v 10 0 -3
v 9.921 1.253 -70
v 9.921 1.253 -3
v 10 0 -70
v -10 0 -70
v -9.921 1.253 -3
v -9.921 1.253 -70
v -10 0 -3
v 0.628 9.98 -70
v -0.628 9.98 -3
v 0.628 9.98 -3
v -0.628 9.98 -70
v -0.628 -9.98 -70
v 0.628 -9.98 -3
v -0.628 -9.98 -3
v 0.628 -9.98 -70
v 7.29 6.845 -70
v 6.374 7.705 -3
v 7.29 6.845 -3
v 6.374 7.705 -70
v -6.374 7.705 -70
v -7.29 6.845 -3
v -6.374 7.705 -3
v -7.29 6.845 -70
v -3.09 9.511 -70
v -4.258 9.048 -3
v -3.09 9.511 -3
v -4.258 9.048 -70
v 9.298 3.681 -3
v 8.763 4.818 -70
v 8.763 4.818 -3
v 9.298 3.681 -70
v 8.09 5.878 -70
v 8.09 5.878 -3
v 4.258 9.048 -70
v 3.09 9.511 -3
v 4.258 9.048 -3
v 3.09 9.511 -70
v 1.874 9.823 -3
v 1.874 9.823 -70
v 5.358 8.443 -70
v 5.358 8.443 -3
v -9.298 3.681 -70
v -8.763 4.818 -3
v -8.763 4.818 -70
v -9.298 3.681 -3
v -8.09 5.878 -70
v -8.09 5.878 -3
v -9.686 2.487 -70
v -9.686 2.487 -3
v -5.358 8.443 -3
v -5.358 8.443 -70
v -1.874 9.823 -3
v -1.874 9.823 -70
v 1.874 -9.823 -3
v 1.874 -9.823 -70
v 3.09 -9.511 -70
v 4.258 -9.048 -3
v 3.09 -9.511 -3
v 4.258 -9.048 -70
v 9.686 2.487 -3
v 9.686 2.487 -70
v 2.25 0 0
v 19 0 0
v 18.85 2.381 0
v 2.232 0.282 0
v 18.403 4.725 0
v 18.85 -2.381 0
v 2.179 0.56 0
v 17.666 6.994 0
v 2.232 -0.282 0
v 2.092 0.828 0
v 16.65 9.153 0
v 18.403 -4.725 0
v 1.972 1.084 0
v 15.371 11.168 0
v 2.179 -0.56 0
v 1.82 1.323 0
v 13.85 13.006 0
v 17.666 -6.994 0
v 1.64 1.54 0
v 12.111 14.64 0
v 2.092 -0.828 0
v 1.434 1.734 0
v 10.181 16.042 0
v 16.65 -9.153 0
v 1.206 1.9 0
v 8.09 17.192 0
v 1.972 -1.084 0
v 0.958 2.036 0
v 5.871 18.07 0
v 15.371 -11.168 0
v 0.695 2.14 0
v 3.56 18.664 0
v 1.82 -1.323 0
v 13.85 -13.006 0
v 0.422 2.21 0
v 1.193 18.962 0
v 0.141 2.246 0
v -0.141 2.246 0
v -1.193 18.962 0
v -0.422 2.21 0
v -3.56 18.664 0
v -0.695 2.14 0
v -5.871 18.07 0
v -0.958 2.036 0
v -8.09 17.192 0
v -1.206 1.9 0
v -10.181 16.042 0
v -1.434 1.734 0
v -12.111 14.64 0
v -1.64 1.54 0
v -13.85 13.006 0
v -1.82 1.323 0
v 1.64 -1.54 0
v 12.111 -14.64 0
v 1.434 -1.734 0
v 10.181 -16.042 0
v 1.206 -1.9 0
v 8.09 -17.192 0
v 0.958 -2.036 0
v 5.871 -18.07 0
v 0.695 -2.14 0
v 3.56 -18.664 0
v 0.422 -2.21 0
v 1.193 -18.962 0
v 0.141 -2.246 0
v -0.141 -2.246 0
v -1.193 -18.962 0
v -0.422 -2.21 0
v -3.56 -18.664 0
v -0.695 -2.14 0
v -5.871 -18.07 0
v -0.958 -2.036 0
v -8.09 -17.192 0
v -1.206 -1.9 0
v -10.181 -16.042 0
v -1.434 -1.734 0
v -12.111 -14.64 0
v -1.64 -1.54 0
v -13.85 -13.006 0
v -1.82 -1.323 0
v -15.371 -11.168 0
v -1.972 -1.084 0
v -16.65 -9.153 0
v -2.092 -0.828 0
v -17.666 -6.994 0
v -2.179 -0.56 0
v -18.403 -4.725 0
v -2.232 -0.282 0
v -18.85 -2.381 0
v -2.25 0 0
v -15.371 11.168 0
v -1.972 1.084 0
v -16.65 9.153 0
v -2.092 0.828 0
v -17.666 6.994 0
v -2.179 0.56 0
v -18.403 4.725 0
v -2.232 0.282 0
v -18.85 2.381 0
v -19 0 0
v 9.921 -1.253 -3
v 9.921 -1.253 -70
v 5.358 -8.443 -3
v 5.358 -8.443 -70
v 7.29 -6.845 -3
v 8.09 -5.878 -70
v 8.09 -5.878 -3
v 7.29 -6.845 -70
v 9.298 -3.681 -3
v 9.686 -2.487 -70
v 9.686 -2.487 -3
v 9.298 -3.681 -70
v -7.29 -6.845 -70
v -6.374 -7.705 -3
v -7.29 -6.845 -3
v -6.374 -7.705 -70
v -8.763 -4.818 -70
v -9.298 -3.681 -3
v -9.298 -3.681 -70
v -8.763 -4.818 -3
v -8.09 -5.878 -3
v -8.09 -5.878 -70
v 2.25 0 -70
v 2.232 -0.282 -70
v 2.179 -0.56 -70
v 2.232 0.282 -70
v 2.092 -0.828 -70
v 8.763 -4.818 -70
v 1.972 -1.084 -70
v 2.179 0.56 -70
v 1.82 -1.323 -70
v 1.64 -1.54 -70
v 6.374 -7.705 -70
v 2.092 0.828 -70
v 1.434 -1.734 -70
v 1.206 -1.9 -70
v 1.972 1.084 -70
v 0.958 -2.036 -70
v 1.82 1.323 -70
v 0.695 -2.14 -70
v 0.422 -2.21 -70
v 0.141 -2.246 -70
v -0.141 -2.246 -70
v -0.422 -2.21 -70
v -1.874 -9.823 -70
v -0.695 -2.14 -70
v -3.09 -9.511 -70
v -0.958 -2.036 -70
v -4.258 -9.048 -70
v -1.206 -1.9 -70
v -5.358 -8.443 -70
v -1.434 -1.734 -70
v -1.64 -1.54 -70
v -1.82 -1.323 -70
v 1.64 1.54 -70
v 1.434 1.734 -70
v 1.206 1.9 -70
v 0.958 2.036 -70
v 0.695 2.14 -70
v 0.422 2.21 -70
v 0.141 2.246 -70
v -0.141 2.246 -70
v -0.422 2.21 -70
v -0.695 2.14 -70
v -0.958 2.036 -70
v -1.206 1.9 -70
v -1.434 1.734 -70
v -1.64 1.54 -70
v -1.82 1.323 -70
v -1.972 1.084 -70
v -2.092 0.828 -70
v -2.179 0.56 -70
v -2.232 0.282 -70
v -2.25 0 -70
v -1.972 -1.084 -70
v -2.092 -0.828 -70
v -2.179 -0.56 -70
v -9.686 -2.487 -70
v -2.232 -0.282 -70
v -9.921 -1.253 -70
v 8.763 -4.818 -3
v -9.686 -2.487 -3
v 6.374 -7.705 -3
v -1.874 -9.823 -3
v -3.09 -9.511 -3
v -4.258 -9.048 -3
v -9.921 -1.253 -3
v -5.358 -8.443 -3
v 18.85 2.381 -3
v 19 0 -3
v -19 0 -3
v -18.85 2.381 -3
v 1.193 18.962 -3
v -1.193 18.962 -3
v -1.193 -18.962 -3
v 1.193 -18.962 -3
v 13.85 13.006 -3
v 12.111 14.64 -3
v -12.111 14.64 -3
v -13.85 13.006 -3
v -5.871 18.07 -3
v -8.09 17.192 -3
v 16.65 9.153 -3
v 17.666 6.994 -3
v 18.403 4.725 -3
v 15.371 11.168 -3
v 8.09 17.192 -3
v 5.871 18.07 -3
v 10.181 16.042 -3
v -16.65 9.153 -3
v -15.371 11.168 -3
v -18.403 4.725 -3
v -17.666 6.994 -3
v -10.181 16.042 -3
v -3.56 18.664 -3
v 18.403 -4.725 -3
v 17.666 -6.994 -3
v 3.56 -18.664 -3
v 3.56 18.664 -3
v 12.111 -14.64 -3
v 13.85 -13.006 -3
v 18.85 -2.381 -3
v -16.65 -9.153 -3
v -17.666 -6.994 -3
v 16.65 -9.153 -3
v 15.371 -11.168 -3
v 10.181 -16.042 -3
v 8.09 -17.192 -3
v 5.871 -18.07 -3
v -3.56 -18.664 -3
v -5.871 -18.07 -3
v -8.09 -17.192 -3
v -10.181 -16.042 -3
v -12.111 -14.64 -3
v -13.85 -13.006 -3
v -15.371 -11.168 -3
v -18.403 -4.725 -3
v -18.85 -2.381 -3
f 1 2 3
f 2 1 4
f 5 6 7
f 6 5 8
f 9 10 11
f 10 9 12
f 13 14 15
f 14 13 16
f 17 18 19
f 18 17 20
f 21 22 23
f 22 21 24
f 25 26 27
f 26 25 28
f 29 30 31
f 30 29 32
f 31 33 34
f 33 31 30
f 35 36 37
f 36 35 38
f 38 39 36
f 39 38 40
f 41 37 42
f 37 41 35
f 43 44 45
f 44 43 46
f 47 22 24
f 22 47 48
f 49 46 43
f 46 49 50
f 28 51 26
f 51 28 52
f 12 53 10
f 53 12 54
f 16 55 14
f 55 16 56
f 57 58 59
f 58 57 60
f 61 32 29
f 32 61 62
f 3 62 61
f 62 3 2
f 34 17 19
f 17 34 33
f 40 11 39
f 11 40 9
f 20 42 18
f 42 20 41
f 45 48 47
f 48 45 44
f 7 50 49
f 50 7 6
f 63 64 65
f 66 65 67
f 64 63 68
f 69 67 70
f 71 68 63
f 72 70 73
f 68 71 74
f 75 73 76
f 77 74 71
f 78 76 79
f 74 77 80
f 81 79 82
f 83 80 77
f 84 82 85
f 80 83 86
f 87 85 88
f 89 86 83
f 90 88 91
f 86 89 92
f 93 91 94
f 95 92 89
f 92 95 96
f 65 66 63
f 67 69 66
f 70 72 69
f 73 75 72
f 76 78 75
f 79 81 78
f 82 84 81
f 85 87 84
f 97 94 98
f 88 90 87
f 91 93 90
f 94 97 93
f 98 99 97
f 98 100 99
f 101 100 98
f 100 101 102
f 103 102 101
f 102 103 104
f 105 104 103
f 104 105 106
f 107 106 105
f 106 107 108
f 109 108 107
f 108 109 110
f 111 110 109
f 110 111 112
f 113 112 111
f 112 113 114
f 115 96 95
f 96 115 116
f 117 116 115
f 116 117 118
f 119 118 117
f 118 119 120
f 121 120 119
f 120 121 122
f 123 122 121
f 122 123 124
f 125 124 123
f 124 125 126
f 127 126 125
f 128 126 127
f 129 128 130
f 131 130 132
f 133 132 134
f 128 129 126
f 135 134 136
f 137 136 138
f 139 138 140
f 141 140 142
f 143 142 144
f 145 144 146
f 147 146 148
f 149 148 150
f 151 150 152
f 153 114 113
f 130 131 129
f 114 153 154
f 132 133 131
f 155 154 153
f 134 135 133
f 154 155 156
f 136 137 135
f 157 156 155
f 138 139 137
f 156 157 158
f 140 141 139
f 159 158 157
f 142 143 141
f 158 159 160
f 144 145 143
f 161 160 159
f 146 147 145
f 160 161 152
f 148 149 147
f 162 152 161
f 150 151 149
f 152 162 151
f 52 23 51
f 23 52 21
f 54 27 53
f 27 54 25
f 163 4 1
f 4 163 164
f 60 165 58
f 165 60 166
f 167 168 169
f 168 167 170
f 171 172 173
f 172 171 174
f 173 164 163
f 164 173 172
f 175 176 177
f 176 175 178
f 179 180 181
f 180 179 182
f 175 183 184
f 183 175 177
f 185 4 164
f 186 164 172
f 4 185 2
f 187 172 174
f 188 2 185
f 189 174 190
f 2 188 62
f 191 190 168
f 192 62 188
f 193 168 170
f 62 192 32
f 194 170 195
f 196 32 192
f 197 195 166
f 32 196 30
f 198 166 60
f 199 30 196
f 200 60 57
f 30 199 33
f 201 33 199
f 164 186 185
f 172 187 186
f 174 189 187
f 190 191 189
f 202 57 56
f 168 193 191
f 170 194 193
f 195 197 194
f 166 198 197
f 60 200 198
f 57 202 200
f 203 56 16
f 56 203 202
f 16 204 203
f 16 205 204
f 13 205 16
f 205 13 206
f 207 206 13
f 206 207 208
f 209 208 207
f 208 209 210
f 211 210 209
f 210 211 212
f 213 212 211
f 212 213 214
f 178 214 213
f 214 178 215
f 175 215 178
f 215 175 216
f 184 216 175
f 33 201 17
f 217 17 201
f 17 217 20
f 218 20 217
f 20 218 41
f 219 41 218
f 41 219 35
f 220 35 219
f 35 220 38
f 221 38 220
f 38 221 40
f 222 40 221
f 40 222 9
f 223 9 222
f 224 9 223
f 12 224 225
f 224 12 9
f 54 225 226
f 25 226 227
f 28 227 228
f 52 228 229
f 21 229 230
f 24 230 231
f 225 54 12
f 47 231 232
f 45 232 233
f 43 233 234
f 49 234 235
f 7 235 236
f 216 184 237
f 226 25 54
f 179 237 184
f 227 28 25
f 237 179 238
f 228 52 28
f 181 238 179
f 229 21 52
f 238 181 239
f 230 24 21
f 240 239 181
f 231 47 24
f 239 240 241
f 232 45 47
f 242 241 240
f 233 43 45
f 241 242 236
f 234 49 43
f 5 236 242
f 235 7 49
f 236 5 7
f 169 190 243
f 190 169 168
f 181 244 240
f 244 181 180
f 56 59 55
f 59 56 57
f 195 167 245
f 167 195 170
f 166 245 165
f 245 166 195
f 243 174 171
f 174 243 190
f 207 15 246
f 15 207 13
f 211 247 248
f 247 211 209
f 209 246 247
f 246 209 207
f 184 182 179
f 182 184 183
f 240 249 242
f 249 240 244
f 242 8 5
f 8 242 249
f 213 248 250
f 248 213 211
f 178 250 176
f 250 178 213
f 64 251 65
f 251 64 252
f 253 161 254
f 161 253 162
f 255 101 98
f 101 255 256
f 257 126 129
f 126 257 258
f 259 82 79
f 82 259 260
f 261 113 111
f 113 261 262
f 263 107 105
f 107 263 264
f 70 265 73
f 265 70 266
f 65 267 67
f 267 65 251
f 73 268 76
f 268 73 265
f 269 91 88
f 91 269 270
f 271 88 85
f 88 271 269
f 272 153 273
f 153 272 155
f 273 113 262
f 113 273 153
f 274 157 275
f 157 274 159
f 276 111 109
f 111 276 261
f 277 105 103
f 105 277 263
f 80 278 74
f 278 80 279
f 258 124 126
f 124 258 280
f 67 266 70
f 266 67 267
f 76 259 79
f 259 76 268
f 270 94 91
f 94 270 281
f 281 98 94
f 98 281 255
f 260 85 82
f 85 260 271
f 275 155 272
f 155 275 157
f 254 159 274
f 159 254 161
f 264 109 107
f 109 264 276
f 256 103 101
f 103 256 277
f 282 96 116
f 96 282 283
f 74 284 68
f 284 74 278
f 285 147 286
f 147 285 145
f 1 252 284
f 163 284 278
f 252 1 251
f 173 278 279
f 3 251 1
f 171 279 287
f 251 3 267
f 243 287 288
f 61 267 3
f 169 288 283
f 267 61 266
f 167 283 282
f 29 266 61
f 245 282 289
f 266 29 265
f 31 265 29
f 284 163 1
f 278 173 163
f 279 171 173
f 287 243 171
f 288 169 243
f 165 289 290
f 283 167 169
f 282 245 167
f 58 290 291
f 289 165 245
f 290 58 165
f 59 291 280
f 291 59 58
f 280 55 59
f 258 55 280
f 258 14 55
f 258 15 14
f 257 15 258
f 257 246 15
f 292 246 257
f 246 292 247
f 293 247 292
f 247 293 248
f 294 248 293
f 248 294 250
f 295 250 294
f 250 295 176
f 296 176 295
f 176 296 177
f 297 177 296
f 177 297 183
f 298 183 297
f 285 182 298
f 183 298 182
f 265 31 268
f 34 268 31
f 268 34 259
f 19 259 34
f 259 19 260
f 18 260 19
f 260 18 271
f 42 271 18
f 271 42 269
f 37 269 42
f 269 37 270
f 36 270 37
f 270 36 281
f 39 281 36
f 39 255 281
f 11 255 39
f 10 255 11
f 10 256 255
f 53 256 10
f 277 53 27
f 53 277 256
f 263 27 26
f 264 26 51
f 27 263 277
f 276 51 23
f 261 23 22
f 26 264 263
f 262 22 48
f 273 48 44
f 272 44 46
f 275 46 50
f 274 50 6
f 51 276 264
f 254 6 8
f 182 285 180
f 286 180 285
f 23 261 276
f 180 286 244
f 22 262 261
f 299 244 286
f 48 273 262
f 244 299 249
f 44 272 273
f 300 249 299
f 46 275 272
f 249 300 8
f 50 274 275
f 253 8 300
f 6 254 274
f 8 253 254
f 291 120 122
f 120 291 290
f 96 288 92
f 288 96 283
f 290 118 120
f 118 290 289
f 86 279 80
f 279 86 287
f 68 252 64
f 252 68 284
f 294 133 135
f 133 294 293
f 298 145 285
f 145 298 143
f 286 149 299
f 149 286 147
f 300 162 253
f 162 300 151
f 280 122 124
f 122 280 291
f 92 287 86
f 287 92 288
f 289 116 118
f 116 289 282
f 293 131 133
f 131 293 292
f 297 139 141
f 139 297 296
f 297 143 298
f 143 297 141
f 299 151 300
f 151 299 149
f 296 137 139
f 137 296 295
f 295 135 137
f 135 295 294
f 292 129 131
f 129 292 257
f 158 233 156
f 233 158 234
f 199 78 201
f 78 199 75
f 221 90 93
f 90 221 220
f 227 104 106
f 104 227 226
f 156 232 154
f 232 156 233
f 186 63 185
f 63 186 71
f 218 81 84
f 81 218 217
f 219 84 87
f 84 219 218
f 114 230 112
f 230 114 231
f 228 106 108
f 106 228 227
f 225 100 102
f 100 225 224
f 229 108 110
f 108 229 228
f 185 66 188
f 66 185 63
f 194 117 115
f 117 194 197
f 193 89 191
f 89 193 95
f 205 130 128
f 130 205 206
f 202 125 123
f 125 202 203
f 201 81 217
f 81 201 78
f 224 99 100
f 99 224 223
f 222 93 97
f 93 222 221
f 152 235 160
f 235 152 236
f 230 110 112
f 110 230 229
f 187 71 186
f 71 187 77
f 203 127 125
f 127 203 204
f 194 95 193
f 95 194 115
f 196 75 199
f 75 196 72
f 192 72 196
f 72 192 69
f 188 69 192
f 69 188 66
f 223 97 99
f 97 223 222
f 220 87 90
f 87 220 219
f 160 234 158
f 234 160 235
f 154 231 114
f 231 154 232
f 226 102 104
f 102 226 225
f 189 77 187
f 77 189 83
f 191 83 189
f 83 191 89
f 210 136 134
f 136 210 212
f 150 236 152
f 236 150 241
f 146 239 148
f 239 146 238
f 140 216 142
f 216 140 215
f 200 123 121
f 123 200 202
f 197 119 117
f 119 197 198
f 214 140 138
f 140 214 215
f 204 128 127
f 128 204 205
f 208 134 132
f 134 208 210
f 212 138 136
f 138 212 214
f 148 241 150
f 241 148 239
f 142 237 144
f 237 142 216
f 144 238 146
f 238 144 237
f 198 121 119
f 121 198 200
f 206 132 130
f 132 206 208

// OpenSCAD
$fn = 50;


difference() {
	union() {
		translate(v = [0, 0, -70.0000000000]) {
			cylinder(h = 70, r = 10.0000000000);
		}
		translate(v = [0, 0, -3.0000000000]) {
			cylinder(h = 3, r = 19.0000000000);
		}
	}
	union() {
		#translate(v = [0, 0, -70]) {
			cylinder(h = 70, r = 2.2500000000);
		}
	}
}
